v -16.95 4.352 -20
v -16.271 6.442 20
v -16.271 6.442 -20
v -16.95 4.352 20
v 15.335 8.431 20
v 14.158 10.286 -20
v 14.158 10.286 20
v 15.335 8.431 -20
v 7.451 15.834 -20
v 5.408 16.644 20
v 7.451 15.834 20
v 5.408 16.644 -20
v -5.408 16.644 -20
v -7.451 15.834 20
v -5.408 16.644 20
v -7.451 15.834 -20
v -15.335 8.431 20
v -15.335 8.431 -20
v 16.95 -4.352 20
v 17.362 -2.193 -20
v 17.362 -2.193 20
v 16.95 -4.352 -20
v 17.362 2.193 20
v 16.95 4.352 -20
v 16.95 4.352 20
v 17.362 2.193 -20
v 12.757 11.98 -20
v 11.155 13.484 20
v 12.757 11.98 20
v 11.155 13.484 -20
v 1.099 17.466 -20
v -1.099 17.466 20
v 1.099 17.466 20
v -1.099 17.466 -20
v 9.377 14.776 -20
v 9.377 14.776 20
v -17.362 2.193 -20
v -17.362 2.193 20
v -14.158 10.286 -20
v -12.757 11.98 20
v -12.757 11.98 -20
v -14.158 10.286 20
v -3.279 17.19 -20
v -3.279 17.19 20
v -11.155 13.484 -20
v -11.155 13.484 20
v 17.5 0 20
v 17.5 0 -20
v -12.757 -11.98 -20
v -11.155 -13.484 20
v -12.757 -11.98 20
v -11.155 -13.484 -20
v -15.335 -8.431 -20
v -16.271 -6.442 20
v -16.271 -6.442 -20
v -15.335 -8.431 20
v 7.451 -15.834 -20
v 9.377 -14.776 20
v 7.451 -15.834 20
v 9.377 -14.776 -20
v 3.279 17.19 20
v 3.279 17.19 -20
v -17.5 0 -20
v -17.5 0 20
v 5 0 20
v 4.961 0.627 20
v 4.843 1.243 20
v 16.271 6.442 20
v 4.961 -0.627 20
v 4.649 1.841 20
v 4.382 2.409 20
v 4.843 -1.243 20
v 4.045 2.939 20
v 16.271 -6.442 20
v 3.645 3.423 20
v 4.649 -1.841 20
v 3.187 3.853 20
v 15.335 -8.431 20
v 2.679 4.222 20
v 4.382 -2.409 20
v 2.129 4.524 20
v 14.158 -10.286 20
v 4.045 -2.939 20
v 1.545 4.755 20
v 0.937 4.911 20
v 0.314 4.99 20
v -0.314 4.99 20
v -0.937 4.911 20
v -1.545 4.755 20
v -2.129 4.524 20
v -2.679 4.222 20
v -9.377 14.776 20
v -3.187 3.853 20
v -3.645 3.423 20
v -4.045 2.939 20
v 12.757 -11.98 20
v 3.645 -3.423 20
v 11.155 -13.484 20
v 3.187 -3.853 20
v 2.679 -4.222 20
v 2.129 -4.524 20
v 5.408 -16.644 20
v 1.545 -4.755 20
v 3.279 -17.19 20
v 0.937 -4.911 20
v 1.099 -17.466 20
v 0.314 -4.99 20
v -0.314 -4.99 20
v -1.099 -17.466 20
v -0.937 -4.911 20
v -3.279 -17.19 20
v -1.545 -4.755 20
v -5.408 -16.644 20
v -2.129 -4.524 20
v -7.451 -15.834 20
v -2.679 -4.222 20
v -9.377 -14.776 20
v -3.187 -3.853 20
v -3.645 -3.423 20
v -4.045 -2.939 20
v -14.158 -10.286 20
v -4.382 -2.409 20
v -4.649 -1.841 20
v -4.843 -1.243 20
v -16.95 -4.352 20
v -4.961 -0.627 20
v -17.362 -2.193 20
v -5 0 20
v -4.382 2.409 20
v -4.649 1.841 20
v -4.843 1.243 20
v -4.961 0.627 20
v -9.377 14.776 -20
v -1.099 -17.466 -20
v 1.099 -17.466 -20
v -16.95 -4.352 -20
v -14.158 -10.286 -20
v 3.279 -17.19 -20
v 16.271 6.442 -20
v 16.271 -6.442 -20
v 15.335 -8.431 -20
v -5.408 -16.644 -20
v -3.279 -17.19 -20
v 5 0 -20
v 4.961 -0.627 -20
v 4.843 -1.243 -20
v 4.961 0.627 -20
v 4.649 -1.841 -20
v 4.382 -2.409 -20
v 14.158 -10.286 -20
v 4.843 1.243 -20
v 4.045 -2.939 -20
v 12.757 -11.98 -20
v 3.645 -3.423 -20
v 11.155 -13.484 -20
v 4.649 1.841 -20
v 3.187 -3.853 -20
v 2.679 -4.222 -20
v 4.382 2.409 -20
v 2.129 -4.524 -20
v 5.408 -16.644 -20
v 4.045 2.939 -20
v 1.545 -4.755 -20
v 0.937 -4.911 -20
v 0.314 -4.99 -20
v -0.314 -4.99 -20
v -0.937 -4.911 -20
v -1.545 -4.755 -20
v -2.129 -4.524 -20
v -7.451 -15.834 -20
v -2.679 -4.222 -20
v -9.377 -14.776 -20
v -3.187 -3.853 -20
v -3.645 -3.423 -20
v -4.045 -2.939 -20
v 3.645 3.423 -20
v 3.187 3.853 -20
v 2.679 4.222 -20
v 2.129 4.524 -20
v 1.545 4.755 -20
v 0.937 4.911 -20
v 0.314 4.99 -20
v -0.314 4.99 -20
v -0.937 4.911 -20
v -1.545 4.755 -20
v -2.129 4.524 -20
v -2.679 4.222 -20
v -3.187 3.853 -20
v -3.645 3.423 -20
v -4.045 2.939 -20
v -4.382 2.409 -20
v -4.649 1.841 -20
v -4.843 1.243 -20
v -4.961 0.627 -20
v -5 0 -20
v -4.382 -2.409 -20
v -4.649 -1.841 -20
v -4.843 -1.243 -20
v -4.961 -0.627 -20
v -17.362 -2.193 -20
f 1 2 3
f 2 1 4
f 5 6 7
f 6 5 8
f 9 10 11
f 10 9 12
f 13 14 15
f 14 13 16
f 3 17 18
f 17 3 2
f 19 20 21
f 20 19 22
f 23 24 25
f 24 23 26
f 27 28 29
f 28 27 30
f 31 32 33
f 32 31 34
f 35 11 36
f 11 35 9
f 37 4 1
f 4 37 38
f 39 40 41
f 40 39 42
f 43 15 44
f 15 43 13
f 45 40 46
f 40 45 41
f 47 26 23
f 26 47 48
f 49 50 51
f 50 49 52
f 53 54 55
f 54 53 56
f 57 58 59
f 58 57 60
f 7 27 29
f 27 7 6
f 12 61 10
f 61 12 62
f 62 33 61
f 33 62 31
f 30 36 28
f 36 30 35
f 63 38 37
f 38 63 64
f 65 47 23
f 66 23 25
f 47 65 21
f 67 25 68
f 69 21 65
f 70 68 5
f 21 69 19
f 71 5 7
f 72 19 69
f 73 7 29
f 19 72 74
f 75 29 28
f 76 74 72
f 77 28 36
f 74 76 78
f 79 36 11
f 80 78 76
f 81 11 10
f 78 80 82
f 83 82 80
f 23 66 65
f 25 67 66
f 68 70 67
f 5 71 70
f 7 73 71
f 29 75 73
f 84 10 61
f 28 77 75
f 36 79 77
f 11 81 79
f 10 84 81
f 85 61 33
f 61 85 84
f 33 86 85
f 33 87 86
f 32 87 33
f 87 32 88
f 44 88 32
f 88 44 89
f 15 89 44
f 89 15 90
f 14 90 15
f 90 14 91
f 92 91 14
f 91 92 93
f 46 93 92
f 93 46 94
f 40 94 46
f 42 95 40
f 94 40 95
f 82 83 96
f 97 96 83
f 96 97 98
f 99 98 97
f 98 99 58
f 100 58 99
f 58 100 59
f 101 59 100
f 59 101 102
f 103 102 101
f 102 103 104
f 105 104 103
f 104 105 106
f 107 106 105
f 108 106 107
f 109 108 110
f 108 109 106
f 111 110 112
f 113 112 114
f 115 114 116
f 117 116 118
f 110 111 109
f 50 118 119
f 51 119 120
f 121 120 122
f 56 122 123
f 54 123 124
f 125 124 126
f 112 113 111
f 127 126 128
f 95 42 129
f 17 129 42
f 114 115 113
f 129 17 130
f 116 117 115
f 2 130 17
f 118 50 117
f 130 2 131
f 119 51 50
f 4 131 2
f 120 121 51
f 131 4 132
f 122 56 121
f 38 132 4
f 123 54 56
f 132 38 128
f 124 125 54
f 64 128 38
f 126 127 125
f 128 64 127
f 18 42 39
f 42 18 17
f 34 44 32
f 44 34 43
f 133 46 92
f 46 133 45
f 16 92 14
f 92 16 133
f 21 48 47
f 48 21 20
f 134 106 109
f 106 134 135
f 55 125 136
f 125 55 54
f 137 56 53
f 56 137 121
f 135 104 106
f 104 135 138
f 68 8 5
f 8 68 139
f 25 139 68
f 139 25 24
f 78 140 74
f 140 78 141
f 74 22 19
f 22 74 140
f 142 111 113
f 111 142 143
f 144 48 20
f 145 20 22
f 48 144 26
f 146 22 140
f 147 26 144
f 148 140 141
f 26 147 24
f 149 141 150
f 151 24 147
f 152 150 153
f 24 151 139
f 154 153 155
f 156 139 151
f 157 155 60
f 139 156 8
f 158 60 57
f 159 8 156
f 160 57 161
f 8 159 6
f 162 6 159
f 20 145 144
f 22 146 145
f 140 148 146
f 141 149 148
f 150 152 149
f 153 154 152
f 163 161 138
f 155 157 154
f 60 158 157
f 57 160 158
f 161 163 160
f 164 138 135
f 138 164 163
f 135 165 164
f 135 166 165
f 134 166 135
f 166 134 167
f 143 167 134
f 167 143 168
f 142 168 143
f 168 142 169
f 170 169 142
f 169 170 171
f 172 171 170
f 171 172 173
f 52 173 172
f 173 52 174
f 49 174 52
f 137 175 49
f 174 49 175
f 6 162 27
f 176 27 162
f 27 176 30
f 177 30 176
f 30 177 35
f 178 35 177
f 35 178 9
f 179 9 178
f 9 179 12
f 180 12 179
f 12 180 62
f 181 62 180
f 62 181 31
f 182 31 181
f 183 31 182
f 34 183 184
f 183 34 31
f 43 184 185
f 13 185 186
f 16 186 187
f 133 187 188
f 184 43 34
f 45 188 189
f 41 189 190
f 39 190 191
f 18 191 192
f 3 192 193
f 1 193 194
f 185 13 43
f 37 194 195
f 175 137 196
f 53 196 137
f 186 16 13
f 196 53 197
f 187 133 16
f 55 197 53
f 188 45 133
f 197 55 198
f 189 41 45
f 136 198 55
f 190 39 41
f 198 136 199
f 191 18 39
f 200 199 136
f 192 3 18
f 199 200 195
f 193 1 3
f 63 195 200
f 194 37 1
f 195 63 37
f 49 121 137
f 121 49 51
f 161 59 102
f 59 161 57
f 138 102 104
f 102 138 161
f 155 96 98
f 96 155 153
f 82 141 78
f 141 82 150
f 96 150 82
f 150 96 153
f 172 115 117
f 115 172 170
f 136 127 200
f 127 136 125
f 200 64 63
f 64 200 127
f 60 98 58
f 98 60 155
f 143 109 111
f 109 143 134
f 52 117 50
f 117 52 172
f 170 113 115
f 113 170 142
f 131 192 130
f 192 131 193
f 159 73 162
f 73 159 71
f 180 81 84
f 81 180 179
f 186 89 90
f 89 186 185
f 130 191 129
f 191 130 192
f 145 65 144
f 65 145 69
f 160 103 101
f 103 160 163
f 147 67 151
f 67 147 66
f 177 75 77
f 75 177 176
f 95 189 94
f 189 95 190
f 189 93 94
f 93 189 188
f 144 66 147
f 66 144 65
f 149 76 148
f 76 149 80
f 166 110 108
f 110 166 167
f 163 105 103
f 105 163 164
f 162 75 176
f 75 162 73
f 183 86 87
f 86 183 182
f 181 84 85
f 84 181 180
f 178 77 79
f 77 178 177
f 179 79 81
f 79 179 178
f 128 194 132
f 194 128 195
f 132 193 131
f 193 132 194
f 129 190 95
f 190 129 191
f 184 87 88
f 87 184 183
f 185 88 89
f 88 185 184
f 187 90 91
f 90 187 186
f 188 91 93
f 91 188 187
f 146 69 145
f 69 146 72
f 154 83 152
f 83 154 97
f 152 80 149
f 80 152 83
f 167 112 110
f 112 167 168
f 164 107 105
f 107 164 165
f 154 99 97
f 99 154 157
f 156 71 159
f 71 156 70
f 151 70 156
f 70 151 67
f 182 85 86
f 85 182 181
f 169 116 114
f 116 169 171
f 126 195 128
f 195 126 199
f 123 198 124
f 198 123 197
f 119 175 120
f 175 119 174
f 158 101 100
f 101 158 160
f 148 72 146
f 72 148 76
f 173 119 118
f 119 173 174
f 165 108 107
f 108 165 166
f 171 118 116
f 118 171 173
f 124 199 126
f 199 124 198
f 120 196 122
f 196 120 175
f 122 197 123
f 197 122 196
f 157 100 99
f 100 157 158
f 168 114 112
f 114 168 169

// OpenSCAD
$fn = 50;


difference() {
	union() {
		translate(v = [0, 0, -20.0000000000]) {
			cylinder(h = 40, r = 17.5000000000);
		}
	}
	union() {
		translate(v = [0, 0, -100.0000000000]) {
			cylinder(h = 200, r = 5);
		}
	}
}
